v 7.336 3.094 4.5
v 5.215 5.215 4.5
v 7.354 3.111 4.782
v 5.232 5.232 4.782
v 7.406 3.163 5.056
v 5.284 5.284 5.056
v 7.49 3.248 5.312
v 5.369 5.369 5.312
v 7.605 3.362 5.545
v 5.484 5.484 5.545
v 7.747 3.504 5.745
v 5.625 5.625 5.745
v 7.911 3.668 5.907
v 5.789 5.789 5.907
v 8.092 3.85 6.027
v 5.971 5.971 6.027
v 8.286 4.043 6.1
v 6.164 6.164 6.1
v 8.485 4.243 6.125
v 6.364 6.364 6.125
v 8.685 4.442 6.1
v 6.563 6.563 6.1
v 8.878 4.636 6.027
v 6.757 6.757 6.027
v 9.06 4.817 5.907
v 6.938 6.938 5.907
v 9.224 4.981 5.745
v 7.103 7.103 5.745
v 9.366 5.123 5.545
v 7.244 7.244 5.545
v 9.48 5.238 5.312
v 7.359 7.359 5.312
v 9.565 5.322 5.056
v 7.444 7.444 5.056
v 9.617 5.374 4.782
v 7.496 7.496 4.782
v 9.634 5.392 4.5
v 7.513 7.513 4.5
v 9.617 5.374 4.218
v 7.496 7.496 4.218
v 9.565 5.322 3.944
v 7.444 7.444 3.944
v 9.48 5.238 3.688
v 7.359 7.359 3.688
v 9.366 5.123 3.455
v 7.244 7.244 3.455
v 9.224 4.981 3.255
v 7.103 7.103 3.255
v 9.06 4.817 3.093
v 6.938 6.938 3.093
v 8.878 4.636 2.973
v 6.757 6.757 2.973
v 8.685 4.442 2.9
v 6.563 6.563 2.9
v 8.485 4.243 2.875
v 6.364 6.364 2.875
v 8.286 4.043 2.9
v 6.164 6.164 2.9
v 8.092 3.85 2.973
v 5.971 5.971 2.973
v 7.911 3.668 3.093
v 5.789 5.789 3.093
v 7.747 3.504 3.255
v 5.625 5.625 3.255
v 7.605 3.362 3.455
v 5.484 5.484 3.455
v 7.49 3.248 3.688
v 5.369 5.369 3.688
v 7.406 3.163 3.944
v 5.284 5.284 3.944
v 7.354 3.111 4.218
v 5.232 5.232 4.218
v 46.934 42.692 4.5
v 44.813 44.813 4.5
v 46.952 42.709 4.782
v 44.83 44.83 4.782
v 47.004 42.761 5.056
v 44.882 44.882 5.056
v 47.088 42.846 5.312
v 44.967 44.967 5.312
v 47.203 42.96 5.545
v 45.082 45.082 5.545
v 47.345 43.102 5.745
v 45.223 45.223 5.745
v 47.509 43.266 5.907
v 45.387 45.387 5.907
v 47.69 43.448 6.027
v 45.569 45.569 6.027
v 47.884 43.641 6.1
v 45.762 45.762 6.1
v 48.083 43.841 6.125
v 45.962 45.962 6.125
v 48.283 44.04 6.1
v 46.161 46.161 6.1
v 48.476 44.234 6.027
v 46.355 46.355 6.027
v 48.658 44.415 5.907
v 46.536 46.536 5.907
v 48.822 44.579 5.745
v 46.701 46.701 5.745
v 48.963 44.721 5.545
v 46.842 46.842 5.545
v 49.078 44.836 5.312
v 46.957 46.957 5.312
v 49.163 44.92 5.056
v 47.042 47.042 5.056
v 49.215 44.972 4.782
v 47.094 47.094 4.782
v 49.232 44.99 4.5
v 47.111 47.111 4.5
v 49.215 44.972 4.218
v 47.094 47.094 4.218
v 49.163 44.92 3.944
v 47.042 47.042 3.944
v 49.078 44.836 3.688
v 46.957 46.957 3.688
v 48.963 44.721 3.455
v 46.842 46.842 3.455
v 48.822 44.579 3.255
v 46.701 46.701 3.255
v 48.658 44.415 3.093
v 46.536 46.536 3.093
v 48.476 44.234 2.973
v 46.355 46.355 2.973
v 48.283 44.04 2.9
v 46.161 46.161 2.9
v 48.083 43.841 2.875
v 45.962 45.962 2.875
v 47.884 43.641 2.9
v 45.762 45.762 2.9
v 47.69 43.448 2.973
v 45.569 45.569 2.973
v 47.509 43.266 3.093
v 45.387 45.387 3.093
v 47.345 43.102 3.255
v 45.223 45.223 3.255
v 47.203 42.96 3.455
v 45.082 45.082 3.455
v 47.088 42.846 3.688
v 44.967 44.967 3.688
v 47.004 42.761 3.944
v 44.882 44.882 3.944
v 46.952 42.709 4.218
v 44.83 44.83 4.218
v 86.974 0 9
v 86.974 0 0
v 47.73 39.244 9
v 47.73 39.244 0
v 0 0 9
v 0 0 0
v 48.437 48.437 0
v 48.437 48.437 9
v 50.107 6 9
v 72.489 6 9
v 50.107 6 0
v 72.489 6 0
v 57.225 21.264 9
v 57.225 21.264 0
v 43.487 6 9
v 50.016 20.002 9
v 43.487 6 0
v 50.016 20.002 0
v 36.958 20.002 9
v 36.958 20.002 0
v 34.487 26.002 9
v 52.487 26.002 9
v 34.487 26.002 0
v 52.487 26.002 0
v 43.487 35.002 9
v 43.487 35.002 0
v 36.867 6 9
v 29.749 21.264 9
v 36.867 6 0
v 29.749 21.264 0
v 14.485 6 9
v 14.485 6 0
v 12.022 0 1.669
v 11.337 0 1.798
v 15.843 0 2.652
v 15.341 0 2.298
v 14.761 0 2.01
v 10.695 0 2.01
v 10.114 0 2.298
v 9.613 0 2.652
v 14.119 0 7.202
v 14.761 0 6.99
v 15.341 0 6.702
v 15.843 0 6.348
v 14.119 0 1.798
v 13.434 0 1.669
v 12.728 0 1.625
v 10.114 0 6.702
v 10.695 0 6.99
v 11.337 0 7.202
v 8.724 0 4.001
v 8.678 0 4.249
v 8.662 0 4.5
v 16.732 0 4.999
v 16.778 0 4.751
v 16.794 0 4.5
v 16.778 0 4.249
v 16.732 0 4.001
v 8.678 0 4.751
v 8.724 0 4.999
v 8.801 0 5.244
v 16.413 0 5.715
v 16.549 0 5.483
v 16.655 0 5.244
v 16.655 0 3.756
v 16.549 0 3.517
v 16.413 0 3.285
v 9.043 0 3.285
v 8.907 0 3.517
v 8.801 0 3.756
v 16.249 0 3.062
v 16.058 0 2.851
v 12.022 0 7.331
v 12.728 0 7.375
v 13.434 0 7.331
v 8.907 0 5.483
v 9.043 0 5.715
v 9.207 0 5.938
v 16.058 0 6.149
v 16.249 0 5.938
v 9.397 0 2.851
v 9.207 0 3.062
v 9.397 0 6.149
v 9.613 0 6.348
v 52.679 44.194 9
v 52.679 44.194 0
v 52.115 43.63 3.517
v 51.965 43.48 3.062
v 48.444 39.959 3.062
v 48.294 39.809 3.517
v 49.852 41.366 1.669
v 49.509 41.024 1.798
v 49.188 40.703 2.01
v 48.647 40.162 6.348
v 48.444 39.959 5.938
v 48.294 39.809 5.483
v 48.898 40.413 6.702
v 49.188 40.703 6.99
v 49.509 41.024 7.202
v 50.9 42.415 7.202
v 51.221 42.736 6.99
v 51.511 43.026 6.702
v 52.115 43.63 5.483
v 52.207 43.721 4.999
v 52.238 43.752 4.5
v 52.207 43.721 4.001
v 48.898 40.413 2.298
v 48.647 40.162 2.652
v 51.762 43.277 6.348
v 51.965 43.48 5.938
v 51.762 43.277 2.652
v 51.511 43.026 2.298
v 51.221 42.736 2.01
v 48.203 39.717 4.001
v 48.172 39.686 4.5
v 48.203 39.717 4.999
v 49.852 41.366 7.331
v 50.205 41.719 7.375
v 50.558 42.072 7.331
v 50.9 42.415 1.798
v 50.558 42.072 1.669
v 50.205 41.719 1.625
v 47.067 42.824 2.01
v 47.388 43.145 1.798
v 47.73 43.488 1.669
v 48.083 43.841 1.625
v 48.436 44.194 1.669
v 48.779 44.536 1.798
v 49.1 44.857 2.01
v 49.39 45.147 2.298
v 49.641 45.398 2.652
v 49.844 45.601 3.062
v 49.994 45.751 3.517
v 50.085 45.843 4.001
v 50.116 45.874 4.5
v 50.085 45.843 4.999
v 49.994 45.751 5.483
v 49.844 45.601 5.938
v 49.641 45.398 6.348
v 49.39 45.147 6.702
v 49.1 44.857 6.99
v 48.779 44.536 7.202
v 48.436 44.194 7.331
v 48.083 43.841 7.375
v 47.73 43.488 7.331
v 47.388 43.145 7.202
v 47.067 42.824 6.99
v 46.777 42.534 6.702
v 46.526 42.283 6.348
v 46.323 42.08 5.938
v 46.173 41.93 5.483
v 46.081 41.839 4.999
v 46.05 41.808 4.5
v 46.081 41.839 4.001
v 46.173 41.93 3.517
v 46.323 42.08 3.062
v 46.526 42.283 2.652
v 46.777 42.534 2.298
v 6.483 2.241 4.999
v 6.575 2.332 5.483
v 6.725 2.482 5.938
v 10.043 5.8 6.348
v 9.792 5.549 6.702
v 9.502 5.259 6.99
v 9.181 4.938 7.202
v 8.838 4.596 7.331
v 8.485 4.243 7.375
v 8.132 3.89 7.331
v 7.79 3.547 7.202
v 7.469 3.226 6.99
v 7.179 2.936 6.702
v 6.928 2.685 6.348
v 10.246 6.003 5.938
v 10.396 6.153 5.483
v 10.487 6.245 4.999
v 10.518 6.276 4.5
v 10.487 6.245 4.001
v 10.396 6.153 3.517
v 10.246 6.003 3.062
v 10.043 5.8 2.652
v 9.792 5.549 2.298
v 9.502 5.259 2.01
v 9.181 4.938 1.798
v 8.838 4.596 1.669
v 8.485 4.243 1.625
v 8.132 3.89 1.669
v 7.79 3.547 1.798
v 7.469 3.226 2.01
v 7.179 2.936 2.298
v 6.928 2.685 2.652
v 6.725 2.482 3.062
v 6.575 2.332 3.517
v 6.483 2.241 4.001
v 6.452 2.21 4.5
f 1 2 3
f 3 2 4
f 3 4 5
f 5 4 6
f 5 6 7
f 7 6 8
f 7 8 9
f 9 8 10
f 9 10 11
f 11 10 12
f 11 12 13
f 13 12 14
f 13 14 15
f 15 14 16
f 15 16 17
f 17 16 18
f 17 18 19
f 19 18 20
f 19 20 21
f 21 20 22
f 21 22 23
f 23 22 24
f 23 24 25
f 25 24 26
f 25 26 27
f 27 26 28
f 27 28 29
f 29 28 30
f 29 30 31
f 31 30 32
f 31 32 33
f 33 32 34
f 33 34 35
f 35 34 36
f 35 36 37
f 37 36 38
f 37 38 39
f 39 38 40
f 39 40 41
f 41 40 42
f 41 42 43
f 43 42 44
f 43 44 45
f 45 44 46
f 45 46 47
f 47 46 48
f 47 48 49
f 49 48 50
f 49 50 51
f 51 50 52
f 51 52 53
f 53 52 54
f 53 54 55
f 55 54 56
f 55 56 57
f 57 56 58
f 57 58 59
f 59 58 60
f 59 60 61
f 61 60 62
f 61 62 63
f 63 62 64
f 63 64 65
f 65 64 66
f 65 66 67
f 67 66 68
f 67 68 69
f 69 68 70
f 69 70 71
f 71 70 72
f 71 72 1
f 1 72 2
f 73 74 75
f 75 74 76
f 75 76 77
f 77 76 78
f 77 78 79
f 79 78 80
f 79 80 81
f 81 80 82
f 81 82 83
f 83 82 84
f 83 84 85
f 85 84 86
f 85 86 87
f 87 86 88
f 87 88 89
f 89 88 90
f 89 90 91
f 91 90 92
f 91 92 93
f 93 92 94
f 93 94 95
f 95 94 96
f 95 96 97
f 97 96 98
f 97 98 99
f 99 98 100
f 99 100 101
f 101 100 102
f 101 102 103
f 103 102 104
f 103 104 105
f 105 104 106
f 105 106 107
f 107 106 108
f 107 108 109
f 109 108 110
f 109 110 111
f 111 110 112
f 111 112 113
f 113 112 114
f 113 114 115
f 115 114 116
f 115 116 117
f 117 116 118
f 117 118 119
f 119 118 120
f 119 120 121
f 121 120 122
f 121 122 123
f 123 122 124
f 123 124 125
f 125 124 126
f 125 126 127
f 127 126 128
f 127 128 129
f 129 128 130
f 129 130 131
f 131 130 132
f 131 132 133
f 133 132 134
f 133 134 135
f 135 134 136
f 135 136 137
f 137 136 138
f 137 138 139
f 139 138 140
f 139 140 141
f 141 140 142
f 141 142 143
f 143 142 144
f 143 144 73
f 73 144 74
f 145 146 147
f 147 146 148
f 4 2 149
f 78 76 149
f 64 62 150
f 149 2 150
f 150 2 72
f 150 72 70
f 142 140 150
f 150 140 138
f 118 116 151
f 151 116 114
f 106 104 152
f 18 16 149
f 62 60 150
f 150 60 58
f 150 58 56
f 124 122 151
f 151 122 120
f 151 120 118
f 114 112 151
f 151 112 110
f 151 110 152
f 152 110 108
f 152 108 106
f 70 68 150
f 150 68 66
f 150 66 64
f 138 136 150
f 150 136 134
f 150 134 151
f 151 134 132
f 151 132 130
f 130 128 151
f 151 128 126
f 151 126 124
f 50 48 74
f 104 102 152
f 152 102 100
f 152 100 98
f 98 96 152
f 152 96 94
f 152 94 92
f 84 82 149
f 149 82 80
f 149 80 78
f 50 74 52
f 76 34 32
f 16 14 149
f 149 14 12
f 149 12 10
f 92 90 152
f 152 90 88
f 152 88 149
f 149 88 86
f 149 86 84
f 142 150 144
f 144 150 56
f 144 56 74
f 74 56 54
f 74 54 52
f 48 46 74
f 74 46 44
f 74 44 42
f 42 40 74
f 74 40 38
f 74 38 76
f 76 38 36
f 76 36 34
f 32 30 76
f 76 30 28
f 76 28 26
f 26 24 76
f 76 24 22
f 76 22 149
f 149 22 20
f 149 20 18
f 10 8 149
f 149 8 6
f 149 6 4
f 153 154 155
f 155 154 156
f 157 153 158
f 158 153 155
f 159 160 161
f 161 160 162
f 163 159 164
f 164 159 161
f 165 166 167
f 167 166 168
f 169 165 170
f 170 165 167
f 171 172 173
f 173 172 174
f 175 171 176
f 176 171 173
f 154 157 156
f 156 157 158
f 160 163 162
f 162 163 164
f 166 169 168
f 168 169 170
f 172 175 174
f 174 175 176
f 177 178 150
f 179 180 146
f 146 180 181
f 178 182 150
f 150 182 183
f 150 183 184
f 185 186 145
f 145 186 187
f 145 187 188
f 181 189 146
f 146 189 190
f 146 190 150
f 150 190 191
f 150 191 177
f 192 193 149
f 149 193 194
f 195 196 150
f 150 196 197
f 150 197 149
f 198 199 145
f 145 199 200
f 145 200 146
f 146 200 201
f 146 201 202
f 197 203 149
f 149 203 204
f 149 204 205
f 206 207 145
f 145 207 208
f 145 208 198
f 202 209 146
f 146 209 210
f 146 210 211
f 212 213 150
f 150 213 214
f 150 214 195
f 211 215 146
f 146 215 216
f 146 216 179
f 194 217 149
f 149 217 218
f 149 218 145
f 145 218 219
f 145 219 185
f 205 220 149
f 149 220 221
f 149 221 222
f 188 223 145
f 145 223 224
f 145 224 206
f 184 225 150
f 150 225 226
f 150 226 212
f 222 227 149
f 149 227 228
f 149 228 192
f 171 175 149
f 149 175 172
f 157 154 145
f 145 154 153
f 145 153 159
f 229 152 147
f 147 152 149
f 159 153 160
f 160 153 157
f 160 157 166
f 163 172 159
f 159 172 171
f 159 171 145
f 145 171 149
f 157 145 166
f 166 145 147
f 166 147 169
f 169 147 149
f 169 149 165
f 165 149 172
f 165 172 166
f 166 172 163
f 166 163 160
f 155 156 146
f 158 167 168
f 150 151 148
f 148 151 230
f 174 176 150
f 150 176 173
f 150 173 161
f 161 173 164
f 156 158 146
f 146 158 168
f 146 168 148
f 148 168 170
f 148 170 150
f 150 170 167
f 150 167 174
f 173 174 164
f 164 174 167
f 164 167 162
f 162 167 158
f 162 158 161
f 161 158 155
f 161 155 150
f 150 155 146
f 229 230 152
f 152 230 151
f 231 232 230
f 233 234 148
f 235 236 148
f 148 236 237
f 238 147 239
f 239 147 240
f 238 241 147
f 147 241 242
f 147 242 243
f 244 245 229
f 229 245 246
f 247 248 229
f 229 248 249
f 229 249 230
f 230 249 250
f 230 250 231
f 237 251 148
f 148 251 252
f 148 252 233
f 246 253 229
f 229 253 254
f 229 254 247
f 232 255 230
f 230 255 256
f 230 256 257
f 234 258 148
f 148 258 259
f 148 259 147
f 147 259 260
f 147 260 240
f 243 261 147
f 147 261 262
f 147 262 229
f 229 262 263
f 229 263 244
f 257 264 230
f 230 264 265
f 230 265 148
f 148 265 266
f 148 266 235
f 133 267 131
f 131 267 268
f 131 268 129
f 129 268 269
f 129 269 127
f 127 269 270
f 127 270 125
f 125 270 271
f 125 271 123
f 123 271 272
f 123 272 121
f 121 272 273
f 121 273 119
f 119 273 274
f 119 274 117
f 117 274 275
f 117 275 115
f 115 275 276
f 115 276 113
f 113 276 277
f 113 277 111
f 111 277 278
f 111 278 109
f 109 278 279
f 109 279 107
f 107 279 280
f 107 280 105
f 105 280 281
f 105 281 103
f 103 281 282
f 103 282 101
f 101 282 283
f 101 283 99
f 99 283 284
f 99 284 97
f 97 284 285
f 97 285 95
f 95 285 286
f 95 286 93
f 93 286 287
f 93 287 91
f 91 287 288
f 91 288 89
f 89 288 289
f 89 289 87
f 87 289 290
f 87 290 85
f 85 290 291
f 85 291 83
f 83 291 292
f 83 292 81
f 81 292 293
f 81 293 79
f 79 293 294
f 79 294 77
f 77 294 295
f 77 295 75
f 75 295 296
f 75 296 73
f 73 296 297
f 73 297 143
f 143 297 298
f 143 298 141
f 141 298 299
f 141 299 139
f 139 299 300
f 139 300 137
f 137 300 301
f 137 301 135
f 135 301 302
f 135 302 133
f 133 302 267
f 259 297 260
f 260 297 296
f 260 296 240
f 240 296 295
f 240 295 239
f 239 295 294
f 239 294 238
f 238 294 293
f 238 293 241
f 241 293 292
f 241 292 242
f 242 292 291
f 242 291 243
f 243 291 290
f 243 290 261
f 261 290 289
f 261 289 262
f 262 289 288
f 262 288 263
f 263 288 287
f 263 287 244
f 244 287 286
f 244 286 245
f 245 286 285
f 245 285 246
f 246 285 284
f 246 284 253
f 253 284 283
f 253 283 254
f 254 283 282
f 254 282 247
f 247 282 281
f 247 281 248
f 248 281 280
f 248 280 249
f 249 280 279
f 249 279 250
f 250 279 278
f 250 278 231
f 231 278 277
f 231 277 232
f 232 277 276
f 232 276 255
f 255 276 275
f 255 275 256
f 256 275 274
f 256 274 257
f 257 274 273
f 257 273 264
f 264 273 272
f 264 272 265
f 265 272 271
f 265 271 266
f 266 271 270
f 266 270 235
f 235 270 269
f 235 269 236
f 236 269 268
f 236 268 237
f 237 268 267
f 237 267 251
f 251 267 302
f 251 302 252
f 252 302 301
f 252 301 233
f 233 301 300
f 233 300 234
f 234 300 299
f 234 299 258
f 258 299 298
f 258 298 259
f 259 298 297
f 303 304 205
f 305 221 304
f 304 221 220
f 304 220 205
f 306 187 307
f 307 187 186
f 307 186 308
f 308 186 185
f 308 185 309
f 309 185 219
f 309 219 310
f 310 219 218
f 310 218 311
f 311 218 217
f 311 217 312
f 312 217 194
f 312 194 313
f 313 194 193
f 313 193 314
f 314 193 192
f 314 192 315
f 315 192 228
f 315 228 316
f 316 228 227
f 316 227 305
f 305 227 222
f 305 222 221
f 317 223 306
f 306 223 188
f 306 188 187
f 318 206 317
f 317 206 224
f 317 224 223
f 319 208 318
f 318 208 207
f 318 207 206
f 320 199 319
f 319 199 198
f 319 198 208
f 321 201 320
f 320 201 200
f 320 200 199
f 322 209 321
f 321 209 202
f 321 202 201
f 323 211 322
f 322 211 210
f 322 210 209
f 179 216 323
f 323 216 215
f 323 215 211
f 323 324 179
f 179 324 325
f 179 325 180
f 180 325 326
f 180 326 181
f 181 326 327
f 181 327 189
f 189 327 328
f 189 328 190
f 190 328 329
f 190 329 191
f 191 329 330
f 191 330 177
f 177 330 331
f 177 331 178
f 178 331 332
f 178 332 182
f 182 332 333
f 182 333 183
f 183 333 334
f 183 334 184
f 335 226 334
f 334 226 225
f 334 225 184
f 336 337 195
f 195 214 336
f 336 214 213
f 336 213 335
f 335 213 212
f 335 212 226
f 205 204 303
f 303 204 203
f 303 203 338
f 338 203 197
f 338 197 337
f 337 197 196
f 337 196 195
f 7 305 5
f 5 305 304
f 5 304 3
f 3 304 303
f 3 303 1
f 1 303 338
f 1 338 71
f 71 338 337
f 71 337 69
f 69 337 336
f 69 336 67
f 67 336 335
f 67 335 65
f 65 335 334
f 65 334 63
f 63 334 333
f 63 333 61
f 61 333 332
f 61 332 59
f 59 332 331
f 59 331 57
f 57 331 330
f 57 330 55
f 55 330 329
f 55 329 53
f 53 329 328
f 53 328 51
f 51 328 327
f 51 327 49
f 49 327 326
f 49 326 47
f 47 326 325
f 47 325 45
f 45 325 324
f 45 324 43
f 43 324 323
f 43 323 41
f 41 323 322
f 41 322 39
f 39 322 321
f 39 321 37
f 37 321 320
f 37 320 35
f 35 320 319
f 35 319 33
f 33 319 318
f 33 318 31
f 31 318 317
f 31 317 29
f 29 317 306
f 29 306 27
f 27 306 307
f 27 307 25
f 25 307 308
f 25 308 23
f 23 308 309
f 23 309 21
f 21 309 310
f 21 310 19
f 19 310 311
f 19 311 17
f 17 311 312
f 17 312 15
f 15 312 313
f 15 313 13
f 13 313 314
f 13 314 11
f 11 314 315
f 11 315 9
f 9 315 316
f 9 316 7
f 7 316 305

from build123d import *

# Parameters (mm, degrees)
BOSS_EXTRUDE1_DEPTH     = 9
SKETCH2_R               = 1.625
CUT_EXTRUDE3_DEPTH      = 9
SKETCH8_W               = 9
SKETCH8_H               = 7
SKETCH8_R               = 1.625
BOSS_EXTRUDE2_DEPTH     = 6
CUT_EXTRUDE4_DEPTH      = 33
CUT_EXTRUDE4_DEPTH_BACK = 3
SKETCH9_R               = 2.875


with BuildPart() as part:
    # Sketch1 → Boss-Extrude1 (new body)
    # profile 1 of 3: a face of its own
    with BuildSketch(Plane.XY):
        Polygon((86.974134086, 0), (43.487067043, 43.487067043), (0, 0), align=None)
        Polygon((43.487067043, 35.001785669), (72.488852712, 6), (14.485281374, 6), align=None, mode=Mode.SUBTRACT)
    # profile 2 of 3: a face of its own
    with BuildSketch(Plane.XY):
        Polygon((34.487067043, 26.001785669), (29.749143655, 21.263862281), (36.866799529, 6), (43.487067043, 6), (36.957927158, 20.001785669), (43.487067043, 20.001785669), (43.487067043, 26.001785669), align=None)
    # profile 3 of 3: a face of its own
    with BuildSketch(Plane.XY):
        Polygon((50.016206928, 20.001785669), (43.487067043, 6), (50.107334557, 6), (57.224990431, 21.263862281), (52.487067043, 26.001785669), (43.487067043, 26.001785669), (43.487067043, 20.001785669), align=None)
    extrude(amount=BOSS_EXTRUDE1_DEPTH)

    # Sketch2 → Cut-Extrude3 (cut)
    with BuildSketch(Plane(origin=(0, 0, 0), x_dir=(0, 0, 1), z_dir=(-0.7071067811865438, 0.7071067811865513, 0))):
        with Locations(Location((4.5, 9, 0), (0, 0, 270))):
            Circle(SKETCH2_R)
    extrude(amount=-CUT_EXTRUDE3_DEPTH, mode=Mode.SUBTRACT)

    # Sketch8 → Boss-Extrude2 (add)
    with BuildSketch(Plane(origin=(0, 0, 0), x_dir=(0, 0, 1), z_dir=(-0.7071067811865438, 0.7071067811865513, 0))):
        with Locations((4.5, 65)):
            Rectangle(SKETCH8_W, SKETCH8_H)
        with Locations(Location((4.5, 65, 0), (0, 0, 270))):
            Circle(SKETCH8_R, mode=Mode.SUBTRACT)
    extrude(amount=-BOSS_EXTRUDE2_DEPTH)

    # Sketch9 → Cut-Extrude4 (cut, two sides: drawn at the far end of the back side and taken through both)
    with BuildSketch(Plane(origin=(4.242640687, -4.242640687, 0), x_dir=(0, 0, -1), z_dir=(0.7071067811865438, -0.7071067811865512, 0)).offset(-CUT_EXTRUDE4_DEPTH_BACK)):
        with Locations(Location((-4.5, 65, 0), (0, 0, 270))):
            Circle(SKETCH9_R)
        with Locations(Location((-4.5, 9, 0), (0, 0, 270))):
            Circle(SKETCH9_R)
    extrude(amount=CUT_EXTRUDE4_DEPTH + CUT_EXTRUDE4_DEPTH_BACK, mode=Mode.SUBTRACT)


solid = part.part
